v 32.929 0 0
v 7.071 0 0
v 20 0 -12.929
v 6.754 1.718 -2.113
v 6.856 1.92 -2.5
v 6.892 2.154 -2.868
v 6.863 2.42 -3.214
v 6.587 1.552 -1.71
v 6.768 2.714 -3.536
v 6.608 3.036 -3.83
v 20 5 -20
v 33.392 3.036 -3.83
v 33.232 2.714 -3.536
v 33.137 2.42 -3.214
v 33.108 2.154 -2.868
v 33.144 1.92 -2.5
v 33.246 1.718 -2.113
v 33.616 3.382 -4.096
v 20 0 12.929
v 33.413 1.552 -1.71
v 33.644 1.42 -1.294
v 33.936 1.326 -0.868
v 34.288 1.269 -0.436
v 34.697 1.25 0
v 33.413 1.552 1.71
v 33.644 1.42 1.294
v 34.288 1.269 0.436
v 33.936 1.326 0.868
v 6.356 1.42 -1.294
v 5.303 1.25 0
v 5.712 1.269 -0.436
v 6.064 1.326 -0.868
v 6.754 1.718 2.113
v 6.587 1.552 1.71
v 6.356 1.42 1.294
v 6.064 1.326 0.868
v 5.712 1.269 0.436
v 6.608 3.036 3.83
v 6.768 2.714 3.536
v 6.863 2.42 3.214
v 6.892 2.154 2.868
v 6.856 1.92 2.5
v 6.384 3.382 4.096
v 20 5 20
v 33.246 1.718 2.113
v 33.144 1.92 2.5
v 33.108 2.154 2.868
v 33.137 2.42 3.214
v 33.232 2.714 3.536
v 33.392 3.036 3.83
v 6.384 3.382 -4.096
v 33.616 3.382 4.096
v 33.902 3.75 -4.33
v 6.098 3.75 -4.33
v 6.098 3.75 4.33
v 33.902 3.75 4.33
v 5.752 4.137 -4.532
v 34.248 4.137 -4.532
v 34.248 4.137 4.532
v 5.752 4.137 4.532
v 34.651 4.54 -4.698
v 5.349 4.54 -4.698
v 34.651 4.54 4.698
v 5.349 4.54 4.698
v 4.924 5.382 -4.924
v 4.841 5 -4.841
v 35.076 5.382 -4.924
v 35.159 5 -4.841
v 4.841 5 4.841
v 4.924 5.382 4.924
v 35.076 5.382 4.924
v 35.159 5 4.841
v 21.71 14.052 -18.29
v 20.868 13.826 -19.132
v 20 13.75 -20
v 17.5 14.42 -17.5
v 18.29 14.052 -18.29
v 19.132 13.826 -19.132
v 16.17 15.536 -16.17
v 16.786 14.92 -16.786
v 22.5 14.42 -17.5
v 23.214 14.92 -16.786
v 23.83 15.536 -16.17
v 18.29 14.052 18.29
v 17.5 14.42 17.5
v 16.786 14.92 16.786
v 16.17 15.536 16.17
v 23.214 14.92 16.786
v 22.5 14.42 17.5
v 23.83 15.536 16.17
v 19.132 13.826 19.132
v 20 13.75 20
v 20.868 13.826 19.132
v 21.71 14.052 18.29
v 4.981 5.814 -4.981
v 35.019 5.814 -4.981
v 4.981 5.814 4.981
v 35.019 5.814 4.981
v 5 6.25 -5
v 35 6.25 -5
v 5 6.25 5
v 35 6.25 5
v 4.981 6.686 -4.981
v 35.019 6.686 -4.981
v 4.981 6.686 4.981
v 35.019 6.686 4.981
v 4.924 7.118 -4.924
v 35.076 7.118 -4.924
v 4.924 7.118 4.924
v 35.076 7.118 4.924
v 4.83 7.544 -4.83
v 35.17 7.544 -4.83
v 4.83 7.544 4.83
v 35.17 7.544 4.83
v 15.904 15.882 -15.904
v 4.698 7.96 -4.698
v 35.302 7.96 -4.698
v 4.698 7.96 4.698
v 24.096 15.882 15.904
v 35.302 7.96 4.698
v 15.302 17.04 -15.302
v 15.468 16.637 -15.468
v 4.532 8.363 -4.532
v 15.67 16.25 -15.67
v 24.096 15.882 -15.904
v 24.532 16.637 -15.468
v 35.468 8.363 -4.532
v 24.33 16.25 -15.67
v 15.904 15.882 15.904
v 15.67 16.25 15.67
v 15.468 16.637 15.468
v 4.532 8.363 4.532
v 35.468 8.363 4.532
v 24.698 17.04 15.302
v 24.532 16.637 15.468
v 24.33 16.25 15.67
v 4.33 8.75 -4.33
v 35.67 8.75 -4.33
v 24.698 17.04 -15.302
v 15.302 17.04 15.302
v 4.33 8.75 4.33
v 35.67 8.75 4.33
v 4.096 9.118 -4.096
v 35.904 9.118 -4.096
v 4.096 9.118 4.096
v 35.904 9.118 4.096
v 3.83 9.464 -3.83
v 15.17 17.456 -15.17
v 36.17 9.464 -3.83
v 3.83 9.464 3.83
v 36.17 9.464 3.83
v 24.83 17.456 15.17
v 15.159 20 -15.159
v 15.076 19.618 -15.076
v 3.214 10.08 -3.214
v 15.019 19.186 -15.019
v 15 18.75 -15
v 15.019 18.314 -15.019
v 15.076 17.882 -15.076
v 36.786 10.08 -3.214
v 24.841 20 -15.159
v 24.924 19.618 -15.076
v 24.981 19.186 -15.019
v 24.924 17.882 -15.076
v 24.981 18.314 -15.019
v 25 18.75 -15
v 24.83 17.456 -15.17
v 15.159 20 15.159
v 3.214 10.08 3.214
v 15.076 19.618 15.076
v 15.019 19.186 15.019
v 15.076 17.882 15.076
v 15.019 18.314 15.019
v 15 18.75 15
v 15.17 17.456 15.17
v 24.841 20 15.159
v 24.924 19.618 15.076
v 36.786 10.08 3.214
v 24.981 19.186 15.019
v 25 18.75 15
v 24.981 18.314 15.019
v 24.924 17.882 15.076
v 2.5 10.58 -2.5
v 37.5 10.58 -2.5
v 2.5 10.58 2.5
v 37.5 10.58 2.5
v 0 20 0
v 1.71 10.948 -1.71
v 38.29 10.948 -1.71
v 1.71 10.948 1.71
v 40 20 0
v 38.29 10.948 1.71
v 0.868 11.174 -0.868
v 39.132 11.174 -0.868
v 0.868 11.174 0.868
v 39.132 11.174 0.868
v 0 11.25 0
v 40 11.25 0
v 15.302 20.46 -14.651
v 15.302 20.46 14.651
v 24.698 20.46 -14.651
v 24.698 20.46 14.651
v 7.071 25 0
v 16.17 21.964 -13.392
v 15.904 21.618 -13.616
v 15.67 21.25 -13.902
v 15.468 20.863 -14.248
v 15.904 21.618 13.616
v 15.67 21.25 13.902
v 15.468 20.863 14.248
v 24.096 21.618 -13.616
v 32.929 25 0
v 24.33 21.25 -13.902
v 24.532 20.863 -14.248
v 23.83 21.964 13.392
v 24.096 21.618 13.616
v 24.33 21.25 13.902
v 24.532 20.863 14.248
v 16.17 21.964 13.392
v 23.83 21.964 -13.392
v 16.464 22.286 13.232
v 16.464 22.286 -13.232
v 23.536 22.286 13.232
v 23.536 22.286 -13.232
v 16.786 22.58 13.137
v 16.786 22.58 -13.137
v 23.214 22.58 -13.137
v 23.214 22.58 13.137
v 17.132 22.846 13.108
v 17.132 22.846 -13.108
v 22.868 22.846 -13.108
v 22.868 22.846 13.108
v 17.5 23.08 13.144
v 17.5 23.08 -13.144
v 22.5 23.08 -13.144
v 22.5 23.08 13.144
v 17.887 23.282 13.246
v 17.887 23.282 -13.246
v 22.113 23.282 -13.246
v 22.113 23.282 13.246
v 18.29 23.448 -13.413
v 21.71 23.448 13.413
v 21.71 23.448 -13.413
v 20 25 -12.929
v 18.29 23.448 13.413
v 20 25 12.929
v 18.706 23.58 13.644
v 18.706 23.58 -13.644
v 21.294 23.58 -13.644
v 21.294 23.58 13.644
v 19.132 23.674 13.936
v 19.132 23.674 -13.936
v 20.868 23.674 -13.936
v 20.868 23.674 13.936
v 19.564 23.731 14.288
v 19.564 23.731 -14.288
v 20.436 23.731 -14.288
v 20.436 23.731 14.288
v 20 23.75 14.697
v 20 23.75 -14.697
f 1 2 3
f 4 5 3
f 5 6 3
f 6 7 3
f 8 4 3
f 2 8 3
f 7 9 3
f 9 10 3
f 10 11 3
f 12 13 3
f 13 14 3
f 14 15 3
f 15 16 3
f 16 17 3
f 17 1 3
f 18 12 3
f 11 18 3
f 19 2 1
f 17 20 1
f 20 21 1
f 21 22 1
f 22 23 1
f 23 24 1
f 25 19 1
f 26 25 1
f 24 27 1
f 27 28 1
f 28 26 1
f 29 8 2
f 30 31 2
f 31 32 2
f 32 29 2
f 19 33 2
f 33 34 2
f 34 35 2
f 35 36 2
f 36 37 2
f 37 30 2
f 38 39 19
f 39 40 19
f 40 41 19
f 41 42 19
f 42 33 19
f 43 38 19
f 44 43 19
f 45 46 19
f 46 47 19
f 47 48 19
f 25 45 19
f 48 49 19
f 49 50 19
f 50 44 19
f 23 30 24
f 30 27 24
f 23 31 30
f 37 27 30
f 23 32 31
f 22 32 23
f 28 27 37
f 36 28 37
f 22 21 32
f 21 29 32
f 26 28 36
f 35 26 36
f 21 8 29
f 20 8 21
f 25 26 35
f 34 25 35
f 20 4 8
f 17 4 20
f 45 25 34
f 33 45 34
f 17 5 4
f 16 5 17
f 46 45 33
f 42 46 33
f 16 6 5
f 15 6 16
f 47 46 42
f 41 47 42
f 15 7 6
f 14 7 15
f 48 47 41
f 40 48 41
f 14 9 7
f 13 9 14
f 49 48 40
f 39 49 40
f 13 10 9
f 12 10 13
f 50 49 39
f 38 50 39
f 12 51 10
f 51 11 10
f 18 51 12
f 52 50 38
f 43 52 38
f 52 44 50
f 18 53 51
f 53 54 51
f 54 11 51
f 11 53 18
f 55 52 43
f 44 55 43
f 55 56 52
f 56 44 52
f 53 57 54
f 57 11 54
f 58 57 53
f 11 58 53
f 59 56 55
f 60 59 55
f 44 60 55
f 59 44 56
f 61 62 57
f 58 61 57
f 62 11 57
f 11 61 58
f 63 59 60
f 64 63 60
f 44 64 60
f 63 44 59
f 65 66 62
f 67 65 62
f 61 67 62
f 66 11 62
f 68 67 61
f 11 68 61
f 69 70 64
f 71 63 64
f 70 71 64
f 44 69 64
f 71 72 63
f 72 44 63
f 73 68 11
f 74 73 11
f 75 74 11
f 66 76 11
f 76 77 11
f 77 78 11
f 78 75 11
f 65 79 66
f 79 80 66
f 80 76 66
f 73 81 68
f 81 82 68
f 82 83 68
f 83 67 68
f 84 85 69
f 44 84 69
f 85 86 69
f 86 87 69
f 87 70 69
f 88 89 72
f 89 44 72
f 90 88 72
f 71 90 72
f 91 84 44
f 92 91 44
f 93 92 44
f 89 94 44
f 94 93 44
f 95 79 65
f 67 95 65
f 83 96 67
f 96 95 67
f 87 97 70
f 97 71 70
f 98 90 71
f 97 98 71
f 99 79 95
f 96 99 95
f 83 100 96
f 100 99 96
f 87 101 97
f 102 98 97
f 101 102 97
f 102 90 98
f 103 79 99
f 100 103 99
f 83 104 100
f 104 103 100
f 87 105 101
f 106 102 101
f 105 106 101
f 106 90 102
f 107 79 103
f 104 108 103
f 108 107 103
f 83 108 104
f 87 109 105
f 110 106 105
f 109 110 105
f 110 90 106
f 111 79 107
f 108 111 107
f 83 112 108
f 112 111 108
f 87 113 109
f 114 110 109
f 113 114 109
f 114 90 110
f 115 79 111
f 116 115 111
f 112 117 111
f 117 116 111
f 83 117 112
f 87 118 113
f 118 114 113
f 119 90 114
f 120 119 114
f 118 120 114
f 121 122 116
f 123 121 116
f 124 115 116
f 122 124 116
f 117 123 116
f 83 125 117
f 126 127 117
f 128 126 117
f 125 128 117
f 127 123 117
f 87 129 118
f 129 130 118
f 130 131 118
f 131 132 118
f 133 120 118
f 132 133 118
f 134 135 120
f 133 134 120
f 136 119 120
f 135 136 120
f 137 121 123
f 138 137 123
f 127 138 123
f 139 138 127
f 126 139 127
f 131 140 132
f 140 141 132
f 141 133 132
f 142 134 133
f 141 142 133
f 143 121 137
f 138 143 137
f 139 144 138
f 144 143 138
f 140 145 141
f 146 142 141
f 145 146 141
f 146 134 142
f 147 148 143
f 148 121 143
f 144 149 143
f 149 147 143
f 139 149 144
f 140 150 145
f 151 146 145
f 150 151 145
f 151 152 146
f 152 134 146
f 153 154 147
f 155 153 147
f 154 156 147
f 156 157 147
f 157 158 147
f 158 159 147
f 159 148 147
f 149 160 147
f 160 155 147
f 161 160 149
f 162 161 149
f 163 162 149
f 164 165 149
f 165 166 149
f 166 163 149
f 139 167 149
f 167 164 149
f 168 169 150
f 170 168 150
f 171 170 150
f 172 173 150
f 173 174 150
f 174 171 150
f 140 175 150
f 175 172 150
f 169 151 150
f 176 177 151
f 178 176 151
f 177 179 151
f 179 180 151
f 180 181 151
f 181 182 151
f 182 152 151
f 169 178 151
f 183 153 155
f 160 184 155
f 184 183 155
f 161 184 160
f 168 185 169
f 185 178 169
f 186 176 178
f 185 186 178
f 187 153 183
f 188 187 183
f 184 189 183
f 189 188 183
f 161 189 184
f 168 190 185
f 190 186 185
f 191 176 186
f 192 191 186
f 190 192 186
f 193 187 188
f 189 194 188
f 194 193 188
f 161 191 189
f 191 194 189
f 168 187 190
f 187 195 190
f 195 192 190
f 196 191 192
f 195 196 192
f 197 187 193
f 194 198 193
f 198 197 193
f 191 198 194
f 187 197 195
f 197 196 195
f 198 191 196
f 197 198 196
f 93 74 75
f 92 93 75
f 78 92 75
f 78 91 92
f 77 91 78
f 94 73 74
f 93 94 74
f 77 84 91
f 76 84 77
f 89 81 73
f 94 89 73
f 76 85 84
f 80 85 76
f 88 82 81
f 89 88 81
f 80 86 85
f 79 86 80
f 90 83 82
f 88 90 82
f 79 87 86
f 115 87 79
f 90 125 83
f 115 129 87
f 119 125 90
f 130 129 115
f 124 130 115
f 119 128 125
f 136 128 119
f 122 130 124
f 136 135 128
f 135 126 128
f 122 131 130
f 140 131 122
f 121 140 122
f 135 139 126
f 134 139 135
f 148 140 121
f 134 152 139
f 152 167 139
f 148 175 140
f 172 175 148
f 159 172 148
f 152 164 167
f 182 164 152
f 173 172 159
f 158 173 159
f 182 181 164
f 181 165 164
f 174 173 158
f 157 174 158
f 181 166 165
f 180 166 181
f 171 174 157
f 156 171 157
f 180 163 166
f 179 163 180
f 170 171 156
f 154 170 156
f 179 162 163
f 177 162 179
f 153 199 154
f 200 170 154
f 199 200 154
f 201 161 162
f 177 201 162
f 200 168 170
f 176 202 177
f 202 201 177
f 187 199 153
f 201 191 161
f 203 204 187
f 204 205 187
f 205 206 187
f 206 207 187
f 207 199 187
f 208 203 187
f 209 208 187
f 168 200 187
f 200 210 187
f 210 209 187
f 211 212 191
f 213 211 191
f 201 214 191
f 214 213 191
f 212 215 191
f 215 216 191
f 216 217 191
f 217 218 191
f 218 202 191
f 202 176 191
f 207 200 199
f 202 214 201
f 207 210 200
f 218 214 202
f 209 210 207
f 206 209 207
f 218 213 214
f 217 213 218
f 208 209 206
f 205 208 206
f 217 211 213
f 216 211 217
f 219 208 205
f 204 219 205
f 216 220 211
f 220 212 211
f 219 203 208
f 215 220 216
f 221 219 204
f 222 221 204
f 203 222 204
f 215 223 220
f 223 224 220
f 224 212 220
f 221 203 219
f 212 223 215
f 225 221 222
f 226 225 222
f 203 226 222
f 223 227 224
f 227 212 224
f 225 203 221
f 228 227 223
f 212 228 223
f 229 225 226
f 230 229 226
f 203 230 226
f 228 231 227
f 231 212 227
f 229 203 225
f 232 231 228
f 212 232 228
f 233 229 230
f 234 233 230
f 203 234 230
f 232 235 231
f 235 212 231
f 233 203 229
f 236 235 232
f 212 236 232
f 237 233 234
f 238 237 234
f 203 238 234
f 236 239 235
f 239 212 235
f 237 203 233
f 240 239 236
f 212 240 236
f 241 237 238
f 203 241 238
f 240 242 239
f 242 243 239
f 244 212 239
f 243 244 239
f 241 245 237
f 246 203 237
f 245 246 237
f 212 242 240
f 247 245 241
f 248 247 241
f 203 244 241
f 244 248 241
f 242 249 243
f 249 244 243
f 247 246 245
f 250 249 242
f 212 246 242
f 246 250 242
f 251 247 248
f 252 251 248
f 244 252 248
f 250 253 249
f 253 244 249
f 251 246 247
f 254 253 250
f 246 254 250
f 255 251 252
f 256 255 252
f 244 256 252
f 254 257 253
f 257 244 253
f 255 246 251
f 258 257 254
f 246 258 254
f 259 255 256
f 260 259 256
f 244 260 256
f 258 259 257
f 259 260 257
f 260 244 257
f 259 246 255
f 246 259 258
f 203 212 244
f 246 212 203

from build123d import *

# Parameters (mm, degrees)
EXTRUDE_1_DEPTH          = 25
CUT_EXTRUDE_2_DEPTH      = 52.23475383
CUT_EXTRUDE_2_DEPTH_BACK = 52.23475383
SKETCH_2_R               = 5
CUT_EXTRUDE_3_DEPTH      = 52.23475383
CUT_EXTRUDE_3_DEPTH_BACK = 52.23475383
SKETCH_3_R               = 5
CHAMFER_1_SIZE           = 5


with BuildPart() as part:
    # 草圖1 → 填料-伸長1 (new body)
    with BuildSketch(Plane(origin=(0, 0, 0), x_dir=(1, 0, 0), z_dir=(0, 1, 0))):
        Polygon((0, 0), (20, 20), (40, 0), (20, -20), align=None)
    extrude(amount=EXTRUDE_1_DEPTH)

    # 草圖2 → 除料-伸長2 (cut, two sides: drawn at the far end of the back side and taken through both)
    with BuildSketch(Plane(origin=(0, 0, 0), x_dir=(0, 0, -1), z_dir=(1, 0, 0)).offset(-CUT_EXTRUDE_2_DEPTH_BACK)):
        with Locations(Location((0, 6.25, 0), (0, 0, 270.000068755))):
            Circle(SKETCH_2_R)
    extrude(amount=CUT_EXTRUDE_2_DEPTH + CUT_EXTRUDE_2_DEPTH_BACK, mode=Mode.SUBTRACT)

    # 草圖3 → 除料-伸長3 (cut, two sides: drawn at the far end of the back side and taken through both)
    with BuildSketch(Plane.XY.offset(-CUT_EXTRUDE_3_DEPTH_BACK)):
        with Locations(Location((20, 18.75, 0), (0, 0, 90))):
            Circle(SKETCH_3_R)
    extrude(amount=CUT_EXTRUDE_3_DEPTH + CUT_EXTRUDE_3_DEPTH_BACK, mode=Mode.SUBTRACT)

    # 導角1
    # the kernel refuses this chamfer: 5 mm, written as the material it takes off along each edge
    with BuildSketch(Plane(origin=(49.092272399, 0, -9.092272399), x_dir=(0.01944252080601414, 0.9996219169112968, 0.01944252080601414), z_dir=(-0.7071067811865476, 0, 0.7071067811865476)), Plane(origin=(10.907727601, 0, -29.092272399), x_dir=(0.019442520806014316, 0.9996219169112968, -0.01944252080601431), z_dir=(0.7071067811865475, 0, 0.7071067811865476)), Plane(origin=(-9.092272399, 0, 9.092272399), x_dir=(-0.01944252080601397, 0.9996219169112968, -0.019442520806013965), z_dir=(0.7071067811865475, 0, -0.7071067811865476)), Plane(origin=(29.092272399, 0, 29.092272399), x_dir=(-0.019442520806014486, 0.9996219169112968, 0.019442520806014486), z_dir=(-0.7071067811865476, 0, -0.7071067811865476)), Plane(origin=(10.907727601, 25, -29.092272399), x_dir=(-0.7068394360706736, 0.027495876610586313, 0.7068394360706735), z_dir=(0.7071067811865475, 0, 0.7071067811865476))) as chamfer_1_piece_1:
        Polygon((CHAMFER_1_SIZE * 0.999621916911, CHAMFER_1_SIZE * 0.0274958766106), (-CHAMFER_1_SIZE * 0.0274958766106, CHAMFER_1_SIZE * 0.999621916911), (0, 0), align=None)
    extrude(amount=54.001101127, mode=Mode.SUBTRACT)
    with BuildSketch(Plane(origin=(29.092272399, 25, 29.092272399), x_dir=(-0.019442520806014486, -0.9996219169112968, 0.019442520806014486), z_dir=(-0.7071067811865476, 0, -0.7071067811865476)), Plane(origin=(-9.092272399, 25, 9.092272399), x_dir=(-0.01944252080601397, -0.9996219169112968, -0.019442520806013965), z_dir=(0.7071067811865475, 0, -0.7071067811865476)), Plane(origin=(49.092272399, 25, -9.092272399), x_dir=(0.01944252080601414, -0.9996219169112968, 0.01944252080601414), z_dir=(-0.7071067811865476, 0, 0.7071067811865476))) as chamfer_1_piece_2:
        Polygon((CHAMFER_1_SIZE * 0.999621916911, -CHAMFER_1_SIZE * 0.0274958766106), (-CHAMFER_1_SIZE * 0.0274958766106, -CHAMFER_1_SIZE * 0.999621916911), (0, 0), align=None)
    extrude(amount=54.001101127, mode=Mode.SUBTRACT)


solid = part.part
